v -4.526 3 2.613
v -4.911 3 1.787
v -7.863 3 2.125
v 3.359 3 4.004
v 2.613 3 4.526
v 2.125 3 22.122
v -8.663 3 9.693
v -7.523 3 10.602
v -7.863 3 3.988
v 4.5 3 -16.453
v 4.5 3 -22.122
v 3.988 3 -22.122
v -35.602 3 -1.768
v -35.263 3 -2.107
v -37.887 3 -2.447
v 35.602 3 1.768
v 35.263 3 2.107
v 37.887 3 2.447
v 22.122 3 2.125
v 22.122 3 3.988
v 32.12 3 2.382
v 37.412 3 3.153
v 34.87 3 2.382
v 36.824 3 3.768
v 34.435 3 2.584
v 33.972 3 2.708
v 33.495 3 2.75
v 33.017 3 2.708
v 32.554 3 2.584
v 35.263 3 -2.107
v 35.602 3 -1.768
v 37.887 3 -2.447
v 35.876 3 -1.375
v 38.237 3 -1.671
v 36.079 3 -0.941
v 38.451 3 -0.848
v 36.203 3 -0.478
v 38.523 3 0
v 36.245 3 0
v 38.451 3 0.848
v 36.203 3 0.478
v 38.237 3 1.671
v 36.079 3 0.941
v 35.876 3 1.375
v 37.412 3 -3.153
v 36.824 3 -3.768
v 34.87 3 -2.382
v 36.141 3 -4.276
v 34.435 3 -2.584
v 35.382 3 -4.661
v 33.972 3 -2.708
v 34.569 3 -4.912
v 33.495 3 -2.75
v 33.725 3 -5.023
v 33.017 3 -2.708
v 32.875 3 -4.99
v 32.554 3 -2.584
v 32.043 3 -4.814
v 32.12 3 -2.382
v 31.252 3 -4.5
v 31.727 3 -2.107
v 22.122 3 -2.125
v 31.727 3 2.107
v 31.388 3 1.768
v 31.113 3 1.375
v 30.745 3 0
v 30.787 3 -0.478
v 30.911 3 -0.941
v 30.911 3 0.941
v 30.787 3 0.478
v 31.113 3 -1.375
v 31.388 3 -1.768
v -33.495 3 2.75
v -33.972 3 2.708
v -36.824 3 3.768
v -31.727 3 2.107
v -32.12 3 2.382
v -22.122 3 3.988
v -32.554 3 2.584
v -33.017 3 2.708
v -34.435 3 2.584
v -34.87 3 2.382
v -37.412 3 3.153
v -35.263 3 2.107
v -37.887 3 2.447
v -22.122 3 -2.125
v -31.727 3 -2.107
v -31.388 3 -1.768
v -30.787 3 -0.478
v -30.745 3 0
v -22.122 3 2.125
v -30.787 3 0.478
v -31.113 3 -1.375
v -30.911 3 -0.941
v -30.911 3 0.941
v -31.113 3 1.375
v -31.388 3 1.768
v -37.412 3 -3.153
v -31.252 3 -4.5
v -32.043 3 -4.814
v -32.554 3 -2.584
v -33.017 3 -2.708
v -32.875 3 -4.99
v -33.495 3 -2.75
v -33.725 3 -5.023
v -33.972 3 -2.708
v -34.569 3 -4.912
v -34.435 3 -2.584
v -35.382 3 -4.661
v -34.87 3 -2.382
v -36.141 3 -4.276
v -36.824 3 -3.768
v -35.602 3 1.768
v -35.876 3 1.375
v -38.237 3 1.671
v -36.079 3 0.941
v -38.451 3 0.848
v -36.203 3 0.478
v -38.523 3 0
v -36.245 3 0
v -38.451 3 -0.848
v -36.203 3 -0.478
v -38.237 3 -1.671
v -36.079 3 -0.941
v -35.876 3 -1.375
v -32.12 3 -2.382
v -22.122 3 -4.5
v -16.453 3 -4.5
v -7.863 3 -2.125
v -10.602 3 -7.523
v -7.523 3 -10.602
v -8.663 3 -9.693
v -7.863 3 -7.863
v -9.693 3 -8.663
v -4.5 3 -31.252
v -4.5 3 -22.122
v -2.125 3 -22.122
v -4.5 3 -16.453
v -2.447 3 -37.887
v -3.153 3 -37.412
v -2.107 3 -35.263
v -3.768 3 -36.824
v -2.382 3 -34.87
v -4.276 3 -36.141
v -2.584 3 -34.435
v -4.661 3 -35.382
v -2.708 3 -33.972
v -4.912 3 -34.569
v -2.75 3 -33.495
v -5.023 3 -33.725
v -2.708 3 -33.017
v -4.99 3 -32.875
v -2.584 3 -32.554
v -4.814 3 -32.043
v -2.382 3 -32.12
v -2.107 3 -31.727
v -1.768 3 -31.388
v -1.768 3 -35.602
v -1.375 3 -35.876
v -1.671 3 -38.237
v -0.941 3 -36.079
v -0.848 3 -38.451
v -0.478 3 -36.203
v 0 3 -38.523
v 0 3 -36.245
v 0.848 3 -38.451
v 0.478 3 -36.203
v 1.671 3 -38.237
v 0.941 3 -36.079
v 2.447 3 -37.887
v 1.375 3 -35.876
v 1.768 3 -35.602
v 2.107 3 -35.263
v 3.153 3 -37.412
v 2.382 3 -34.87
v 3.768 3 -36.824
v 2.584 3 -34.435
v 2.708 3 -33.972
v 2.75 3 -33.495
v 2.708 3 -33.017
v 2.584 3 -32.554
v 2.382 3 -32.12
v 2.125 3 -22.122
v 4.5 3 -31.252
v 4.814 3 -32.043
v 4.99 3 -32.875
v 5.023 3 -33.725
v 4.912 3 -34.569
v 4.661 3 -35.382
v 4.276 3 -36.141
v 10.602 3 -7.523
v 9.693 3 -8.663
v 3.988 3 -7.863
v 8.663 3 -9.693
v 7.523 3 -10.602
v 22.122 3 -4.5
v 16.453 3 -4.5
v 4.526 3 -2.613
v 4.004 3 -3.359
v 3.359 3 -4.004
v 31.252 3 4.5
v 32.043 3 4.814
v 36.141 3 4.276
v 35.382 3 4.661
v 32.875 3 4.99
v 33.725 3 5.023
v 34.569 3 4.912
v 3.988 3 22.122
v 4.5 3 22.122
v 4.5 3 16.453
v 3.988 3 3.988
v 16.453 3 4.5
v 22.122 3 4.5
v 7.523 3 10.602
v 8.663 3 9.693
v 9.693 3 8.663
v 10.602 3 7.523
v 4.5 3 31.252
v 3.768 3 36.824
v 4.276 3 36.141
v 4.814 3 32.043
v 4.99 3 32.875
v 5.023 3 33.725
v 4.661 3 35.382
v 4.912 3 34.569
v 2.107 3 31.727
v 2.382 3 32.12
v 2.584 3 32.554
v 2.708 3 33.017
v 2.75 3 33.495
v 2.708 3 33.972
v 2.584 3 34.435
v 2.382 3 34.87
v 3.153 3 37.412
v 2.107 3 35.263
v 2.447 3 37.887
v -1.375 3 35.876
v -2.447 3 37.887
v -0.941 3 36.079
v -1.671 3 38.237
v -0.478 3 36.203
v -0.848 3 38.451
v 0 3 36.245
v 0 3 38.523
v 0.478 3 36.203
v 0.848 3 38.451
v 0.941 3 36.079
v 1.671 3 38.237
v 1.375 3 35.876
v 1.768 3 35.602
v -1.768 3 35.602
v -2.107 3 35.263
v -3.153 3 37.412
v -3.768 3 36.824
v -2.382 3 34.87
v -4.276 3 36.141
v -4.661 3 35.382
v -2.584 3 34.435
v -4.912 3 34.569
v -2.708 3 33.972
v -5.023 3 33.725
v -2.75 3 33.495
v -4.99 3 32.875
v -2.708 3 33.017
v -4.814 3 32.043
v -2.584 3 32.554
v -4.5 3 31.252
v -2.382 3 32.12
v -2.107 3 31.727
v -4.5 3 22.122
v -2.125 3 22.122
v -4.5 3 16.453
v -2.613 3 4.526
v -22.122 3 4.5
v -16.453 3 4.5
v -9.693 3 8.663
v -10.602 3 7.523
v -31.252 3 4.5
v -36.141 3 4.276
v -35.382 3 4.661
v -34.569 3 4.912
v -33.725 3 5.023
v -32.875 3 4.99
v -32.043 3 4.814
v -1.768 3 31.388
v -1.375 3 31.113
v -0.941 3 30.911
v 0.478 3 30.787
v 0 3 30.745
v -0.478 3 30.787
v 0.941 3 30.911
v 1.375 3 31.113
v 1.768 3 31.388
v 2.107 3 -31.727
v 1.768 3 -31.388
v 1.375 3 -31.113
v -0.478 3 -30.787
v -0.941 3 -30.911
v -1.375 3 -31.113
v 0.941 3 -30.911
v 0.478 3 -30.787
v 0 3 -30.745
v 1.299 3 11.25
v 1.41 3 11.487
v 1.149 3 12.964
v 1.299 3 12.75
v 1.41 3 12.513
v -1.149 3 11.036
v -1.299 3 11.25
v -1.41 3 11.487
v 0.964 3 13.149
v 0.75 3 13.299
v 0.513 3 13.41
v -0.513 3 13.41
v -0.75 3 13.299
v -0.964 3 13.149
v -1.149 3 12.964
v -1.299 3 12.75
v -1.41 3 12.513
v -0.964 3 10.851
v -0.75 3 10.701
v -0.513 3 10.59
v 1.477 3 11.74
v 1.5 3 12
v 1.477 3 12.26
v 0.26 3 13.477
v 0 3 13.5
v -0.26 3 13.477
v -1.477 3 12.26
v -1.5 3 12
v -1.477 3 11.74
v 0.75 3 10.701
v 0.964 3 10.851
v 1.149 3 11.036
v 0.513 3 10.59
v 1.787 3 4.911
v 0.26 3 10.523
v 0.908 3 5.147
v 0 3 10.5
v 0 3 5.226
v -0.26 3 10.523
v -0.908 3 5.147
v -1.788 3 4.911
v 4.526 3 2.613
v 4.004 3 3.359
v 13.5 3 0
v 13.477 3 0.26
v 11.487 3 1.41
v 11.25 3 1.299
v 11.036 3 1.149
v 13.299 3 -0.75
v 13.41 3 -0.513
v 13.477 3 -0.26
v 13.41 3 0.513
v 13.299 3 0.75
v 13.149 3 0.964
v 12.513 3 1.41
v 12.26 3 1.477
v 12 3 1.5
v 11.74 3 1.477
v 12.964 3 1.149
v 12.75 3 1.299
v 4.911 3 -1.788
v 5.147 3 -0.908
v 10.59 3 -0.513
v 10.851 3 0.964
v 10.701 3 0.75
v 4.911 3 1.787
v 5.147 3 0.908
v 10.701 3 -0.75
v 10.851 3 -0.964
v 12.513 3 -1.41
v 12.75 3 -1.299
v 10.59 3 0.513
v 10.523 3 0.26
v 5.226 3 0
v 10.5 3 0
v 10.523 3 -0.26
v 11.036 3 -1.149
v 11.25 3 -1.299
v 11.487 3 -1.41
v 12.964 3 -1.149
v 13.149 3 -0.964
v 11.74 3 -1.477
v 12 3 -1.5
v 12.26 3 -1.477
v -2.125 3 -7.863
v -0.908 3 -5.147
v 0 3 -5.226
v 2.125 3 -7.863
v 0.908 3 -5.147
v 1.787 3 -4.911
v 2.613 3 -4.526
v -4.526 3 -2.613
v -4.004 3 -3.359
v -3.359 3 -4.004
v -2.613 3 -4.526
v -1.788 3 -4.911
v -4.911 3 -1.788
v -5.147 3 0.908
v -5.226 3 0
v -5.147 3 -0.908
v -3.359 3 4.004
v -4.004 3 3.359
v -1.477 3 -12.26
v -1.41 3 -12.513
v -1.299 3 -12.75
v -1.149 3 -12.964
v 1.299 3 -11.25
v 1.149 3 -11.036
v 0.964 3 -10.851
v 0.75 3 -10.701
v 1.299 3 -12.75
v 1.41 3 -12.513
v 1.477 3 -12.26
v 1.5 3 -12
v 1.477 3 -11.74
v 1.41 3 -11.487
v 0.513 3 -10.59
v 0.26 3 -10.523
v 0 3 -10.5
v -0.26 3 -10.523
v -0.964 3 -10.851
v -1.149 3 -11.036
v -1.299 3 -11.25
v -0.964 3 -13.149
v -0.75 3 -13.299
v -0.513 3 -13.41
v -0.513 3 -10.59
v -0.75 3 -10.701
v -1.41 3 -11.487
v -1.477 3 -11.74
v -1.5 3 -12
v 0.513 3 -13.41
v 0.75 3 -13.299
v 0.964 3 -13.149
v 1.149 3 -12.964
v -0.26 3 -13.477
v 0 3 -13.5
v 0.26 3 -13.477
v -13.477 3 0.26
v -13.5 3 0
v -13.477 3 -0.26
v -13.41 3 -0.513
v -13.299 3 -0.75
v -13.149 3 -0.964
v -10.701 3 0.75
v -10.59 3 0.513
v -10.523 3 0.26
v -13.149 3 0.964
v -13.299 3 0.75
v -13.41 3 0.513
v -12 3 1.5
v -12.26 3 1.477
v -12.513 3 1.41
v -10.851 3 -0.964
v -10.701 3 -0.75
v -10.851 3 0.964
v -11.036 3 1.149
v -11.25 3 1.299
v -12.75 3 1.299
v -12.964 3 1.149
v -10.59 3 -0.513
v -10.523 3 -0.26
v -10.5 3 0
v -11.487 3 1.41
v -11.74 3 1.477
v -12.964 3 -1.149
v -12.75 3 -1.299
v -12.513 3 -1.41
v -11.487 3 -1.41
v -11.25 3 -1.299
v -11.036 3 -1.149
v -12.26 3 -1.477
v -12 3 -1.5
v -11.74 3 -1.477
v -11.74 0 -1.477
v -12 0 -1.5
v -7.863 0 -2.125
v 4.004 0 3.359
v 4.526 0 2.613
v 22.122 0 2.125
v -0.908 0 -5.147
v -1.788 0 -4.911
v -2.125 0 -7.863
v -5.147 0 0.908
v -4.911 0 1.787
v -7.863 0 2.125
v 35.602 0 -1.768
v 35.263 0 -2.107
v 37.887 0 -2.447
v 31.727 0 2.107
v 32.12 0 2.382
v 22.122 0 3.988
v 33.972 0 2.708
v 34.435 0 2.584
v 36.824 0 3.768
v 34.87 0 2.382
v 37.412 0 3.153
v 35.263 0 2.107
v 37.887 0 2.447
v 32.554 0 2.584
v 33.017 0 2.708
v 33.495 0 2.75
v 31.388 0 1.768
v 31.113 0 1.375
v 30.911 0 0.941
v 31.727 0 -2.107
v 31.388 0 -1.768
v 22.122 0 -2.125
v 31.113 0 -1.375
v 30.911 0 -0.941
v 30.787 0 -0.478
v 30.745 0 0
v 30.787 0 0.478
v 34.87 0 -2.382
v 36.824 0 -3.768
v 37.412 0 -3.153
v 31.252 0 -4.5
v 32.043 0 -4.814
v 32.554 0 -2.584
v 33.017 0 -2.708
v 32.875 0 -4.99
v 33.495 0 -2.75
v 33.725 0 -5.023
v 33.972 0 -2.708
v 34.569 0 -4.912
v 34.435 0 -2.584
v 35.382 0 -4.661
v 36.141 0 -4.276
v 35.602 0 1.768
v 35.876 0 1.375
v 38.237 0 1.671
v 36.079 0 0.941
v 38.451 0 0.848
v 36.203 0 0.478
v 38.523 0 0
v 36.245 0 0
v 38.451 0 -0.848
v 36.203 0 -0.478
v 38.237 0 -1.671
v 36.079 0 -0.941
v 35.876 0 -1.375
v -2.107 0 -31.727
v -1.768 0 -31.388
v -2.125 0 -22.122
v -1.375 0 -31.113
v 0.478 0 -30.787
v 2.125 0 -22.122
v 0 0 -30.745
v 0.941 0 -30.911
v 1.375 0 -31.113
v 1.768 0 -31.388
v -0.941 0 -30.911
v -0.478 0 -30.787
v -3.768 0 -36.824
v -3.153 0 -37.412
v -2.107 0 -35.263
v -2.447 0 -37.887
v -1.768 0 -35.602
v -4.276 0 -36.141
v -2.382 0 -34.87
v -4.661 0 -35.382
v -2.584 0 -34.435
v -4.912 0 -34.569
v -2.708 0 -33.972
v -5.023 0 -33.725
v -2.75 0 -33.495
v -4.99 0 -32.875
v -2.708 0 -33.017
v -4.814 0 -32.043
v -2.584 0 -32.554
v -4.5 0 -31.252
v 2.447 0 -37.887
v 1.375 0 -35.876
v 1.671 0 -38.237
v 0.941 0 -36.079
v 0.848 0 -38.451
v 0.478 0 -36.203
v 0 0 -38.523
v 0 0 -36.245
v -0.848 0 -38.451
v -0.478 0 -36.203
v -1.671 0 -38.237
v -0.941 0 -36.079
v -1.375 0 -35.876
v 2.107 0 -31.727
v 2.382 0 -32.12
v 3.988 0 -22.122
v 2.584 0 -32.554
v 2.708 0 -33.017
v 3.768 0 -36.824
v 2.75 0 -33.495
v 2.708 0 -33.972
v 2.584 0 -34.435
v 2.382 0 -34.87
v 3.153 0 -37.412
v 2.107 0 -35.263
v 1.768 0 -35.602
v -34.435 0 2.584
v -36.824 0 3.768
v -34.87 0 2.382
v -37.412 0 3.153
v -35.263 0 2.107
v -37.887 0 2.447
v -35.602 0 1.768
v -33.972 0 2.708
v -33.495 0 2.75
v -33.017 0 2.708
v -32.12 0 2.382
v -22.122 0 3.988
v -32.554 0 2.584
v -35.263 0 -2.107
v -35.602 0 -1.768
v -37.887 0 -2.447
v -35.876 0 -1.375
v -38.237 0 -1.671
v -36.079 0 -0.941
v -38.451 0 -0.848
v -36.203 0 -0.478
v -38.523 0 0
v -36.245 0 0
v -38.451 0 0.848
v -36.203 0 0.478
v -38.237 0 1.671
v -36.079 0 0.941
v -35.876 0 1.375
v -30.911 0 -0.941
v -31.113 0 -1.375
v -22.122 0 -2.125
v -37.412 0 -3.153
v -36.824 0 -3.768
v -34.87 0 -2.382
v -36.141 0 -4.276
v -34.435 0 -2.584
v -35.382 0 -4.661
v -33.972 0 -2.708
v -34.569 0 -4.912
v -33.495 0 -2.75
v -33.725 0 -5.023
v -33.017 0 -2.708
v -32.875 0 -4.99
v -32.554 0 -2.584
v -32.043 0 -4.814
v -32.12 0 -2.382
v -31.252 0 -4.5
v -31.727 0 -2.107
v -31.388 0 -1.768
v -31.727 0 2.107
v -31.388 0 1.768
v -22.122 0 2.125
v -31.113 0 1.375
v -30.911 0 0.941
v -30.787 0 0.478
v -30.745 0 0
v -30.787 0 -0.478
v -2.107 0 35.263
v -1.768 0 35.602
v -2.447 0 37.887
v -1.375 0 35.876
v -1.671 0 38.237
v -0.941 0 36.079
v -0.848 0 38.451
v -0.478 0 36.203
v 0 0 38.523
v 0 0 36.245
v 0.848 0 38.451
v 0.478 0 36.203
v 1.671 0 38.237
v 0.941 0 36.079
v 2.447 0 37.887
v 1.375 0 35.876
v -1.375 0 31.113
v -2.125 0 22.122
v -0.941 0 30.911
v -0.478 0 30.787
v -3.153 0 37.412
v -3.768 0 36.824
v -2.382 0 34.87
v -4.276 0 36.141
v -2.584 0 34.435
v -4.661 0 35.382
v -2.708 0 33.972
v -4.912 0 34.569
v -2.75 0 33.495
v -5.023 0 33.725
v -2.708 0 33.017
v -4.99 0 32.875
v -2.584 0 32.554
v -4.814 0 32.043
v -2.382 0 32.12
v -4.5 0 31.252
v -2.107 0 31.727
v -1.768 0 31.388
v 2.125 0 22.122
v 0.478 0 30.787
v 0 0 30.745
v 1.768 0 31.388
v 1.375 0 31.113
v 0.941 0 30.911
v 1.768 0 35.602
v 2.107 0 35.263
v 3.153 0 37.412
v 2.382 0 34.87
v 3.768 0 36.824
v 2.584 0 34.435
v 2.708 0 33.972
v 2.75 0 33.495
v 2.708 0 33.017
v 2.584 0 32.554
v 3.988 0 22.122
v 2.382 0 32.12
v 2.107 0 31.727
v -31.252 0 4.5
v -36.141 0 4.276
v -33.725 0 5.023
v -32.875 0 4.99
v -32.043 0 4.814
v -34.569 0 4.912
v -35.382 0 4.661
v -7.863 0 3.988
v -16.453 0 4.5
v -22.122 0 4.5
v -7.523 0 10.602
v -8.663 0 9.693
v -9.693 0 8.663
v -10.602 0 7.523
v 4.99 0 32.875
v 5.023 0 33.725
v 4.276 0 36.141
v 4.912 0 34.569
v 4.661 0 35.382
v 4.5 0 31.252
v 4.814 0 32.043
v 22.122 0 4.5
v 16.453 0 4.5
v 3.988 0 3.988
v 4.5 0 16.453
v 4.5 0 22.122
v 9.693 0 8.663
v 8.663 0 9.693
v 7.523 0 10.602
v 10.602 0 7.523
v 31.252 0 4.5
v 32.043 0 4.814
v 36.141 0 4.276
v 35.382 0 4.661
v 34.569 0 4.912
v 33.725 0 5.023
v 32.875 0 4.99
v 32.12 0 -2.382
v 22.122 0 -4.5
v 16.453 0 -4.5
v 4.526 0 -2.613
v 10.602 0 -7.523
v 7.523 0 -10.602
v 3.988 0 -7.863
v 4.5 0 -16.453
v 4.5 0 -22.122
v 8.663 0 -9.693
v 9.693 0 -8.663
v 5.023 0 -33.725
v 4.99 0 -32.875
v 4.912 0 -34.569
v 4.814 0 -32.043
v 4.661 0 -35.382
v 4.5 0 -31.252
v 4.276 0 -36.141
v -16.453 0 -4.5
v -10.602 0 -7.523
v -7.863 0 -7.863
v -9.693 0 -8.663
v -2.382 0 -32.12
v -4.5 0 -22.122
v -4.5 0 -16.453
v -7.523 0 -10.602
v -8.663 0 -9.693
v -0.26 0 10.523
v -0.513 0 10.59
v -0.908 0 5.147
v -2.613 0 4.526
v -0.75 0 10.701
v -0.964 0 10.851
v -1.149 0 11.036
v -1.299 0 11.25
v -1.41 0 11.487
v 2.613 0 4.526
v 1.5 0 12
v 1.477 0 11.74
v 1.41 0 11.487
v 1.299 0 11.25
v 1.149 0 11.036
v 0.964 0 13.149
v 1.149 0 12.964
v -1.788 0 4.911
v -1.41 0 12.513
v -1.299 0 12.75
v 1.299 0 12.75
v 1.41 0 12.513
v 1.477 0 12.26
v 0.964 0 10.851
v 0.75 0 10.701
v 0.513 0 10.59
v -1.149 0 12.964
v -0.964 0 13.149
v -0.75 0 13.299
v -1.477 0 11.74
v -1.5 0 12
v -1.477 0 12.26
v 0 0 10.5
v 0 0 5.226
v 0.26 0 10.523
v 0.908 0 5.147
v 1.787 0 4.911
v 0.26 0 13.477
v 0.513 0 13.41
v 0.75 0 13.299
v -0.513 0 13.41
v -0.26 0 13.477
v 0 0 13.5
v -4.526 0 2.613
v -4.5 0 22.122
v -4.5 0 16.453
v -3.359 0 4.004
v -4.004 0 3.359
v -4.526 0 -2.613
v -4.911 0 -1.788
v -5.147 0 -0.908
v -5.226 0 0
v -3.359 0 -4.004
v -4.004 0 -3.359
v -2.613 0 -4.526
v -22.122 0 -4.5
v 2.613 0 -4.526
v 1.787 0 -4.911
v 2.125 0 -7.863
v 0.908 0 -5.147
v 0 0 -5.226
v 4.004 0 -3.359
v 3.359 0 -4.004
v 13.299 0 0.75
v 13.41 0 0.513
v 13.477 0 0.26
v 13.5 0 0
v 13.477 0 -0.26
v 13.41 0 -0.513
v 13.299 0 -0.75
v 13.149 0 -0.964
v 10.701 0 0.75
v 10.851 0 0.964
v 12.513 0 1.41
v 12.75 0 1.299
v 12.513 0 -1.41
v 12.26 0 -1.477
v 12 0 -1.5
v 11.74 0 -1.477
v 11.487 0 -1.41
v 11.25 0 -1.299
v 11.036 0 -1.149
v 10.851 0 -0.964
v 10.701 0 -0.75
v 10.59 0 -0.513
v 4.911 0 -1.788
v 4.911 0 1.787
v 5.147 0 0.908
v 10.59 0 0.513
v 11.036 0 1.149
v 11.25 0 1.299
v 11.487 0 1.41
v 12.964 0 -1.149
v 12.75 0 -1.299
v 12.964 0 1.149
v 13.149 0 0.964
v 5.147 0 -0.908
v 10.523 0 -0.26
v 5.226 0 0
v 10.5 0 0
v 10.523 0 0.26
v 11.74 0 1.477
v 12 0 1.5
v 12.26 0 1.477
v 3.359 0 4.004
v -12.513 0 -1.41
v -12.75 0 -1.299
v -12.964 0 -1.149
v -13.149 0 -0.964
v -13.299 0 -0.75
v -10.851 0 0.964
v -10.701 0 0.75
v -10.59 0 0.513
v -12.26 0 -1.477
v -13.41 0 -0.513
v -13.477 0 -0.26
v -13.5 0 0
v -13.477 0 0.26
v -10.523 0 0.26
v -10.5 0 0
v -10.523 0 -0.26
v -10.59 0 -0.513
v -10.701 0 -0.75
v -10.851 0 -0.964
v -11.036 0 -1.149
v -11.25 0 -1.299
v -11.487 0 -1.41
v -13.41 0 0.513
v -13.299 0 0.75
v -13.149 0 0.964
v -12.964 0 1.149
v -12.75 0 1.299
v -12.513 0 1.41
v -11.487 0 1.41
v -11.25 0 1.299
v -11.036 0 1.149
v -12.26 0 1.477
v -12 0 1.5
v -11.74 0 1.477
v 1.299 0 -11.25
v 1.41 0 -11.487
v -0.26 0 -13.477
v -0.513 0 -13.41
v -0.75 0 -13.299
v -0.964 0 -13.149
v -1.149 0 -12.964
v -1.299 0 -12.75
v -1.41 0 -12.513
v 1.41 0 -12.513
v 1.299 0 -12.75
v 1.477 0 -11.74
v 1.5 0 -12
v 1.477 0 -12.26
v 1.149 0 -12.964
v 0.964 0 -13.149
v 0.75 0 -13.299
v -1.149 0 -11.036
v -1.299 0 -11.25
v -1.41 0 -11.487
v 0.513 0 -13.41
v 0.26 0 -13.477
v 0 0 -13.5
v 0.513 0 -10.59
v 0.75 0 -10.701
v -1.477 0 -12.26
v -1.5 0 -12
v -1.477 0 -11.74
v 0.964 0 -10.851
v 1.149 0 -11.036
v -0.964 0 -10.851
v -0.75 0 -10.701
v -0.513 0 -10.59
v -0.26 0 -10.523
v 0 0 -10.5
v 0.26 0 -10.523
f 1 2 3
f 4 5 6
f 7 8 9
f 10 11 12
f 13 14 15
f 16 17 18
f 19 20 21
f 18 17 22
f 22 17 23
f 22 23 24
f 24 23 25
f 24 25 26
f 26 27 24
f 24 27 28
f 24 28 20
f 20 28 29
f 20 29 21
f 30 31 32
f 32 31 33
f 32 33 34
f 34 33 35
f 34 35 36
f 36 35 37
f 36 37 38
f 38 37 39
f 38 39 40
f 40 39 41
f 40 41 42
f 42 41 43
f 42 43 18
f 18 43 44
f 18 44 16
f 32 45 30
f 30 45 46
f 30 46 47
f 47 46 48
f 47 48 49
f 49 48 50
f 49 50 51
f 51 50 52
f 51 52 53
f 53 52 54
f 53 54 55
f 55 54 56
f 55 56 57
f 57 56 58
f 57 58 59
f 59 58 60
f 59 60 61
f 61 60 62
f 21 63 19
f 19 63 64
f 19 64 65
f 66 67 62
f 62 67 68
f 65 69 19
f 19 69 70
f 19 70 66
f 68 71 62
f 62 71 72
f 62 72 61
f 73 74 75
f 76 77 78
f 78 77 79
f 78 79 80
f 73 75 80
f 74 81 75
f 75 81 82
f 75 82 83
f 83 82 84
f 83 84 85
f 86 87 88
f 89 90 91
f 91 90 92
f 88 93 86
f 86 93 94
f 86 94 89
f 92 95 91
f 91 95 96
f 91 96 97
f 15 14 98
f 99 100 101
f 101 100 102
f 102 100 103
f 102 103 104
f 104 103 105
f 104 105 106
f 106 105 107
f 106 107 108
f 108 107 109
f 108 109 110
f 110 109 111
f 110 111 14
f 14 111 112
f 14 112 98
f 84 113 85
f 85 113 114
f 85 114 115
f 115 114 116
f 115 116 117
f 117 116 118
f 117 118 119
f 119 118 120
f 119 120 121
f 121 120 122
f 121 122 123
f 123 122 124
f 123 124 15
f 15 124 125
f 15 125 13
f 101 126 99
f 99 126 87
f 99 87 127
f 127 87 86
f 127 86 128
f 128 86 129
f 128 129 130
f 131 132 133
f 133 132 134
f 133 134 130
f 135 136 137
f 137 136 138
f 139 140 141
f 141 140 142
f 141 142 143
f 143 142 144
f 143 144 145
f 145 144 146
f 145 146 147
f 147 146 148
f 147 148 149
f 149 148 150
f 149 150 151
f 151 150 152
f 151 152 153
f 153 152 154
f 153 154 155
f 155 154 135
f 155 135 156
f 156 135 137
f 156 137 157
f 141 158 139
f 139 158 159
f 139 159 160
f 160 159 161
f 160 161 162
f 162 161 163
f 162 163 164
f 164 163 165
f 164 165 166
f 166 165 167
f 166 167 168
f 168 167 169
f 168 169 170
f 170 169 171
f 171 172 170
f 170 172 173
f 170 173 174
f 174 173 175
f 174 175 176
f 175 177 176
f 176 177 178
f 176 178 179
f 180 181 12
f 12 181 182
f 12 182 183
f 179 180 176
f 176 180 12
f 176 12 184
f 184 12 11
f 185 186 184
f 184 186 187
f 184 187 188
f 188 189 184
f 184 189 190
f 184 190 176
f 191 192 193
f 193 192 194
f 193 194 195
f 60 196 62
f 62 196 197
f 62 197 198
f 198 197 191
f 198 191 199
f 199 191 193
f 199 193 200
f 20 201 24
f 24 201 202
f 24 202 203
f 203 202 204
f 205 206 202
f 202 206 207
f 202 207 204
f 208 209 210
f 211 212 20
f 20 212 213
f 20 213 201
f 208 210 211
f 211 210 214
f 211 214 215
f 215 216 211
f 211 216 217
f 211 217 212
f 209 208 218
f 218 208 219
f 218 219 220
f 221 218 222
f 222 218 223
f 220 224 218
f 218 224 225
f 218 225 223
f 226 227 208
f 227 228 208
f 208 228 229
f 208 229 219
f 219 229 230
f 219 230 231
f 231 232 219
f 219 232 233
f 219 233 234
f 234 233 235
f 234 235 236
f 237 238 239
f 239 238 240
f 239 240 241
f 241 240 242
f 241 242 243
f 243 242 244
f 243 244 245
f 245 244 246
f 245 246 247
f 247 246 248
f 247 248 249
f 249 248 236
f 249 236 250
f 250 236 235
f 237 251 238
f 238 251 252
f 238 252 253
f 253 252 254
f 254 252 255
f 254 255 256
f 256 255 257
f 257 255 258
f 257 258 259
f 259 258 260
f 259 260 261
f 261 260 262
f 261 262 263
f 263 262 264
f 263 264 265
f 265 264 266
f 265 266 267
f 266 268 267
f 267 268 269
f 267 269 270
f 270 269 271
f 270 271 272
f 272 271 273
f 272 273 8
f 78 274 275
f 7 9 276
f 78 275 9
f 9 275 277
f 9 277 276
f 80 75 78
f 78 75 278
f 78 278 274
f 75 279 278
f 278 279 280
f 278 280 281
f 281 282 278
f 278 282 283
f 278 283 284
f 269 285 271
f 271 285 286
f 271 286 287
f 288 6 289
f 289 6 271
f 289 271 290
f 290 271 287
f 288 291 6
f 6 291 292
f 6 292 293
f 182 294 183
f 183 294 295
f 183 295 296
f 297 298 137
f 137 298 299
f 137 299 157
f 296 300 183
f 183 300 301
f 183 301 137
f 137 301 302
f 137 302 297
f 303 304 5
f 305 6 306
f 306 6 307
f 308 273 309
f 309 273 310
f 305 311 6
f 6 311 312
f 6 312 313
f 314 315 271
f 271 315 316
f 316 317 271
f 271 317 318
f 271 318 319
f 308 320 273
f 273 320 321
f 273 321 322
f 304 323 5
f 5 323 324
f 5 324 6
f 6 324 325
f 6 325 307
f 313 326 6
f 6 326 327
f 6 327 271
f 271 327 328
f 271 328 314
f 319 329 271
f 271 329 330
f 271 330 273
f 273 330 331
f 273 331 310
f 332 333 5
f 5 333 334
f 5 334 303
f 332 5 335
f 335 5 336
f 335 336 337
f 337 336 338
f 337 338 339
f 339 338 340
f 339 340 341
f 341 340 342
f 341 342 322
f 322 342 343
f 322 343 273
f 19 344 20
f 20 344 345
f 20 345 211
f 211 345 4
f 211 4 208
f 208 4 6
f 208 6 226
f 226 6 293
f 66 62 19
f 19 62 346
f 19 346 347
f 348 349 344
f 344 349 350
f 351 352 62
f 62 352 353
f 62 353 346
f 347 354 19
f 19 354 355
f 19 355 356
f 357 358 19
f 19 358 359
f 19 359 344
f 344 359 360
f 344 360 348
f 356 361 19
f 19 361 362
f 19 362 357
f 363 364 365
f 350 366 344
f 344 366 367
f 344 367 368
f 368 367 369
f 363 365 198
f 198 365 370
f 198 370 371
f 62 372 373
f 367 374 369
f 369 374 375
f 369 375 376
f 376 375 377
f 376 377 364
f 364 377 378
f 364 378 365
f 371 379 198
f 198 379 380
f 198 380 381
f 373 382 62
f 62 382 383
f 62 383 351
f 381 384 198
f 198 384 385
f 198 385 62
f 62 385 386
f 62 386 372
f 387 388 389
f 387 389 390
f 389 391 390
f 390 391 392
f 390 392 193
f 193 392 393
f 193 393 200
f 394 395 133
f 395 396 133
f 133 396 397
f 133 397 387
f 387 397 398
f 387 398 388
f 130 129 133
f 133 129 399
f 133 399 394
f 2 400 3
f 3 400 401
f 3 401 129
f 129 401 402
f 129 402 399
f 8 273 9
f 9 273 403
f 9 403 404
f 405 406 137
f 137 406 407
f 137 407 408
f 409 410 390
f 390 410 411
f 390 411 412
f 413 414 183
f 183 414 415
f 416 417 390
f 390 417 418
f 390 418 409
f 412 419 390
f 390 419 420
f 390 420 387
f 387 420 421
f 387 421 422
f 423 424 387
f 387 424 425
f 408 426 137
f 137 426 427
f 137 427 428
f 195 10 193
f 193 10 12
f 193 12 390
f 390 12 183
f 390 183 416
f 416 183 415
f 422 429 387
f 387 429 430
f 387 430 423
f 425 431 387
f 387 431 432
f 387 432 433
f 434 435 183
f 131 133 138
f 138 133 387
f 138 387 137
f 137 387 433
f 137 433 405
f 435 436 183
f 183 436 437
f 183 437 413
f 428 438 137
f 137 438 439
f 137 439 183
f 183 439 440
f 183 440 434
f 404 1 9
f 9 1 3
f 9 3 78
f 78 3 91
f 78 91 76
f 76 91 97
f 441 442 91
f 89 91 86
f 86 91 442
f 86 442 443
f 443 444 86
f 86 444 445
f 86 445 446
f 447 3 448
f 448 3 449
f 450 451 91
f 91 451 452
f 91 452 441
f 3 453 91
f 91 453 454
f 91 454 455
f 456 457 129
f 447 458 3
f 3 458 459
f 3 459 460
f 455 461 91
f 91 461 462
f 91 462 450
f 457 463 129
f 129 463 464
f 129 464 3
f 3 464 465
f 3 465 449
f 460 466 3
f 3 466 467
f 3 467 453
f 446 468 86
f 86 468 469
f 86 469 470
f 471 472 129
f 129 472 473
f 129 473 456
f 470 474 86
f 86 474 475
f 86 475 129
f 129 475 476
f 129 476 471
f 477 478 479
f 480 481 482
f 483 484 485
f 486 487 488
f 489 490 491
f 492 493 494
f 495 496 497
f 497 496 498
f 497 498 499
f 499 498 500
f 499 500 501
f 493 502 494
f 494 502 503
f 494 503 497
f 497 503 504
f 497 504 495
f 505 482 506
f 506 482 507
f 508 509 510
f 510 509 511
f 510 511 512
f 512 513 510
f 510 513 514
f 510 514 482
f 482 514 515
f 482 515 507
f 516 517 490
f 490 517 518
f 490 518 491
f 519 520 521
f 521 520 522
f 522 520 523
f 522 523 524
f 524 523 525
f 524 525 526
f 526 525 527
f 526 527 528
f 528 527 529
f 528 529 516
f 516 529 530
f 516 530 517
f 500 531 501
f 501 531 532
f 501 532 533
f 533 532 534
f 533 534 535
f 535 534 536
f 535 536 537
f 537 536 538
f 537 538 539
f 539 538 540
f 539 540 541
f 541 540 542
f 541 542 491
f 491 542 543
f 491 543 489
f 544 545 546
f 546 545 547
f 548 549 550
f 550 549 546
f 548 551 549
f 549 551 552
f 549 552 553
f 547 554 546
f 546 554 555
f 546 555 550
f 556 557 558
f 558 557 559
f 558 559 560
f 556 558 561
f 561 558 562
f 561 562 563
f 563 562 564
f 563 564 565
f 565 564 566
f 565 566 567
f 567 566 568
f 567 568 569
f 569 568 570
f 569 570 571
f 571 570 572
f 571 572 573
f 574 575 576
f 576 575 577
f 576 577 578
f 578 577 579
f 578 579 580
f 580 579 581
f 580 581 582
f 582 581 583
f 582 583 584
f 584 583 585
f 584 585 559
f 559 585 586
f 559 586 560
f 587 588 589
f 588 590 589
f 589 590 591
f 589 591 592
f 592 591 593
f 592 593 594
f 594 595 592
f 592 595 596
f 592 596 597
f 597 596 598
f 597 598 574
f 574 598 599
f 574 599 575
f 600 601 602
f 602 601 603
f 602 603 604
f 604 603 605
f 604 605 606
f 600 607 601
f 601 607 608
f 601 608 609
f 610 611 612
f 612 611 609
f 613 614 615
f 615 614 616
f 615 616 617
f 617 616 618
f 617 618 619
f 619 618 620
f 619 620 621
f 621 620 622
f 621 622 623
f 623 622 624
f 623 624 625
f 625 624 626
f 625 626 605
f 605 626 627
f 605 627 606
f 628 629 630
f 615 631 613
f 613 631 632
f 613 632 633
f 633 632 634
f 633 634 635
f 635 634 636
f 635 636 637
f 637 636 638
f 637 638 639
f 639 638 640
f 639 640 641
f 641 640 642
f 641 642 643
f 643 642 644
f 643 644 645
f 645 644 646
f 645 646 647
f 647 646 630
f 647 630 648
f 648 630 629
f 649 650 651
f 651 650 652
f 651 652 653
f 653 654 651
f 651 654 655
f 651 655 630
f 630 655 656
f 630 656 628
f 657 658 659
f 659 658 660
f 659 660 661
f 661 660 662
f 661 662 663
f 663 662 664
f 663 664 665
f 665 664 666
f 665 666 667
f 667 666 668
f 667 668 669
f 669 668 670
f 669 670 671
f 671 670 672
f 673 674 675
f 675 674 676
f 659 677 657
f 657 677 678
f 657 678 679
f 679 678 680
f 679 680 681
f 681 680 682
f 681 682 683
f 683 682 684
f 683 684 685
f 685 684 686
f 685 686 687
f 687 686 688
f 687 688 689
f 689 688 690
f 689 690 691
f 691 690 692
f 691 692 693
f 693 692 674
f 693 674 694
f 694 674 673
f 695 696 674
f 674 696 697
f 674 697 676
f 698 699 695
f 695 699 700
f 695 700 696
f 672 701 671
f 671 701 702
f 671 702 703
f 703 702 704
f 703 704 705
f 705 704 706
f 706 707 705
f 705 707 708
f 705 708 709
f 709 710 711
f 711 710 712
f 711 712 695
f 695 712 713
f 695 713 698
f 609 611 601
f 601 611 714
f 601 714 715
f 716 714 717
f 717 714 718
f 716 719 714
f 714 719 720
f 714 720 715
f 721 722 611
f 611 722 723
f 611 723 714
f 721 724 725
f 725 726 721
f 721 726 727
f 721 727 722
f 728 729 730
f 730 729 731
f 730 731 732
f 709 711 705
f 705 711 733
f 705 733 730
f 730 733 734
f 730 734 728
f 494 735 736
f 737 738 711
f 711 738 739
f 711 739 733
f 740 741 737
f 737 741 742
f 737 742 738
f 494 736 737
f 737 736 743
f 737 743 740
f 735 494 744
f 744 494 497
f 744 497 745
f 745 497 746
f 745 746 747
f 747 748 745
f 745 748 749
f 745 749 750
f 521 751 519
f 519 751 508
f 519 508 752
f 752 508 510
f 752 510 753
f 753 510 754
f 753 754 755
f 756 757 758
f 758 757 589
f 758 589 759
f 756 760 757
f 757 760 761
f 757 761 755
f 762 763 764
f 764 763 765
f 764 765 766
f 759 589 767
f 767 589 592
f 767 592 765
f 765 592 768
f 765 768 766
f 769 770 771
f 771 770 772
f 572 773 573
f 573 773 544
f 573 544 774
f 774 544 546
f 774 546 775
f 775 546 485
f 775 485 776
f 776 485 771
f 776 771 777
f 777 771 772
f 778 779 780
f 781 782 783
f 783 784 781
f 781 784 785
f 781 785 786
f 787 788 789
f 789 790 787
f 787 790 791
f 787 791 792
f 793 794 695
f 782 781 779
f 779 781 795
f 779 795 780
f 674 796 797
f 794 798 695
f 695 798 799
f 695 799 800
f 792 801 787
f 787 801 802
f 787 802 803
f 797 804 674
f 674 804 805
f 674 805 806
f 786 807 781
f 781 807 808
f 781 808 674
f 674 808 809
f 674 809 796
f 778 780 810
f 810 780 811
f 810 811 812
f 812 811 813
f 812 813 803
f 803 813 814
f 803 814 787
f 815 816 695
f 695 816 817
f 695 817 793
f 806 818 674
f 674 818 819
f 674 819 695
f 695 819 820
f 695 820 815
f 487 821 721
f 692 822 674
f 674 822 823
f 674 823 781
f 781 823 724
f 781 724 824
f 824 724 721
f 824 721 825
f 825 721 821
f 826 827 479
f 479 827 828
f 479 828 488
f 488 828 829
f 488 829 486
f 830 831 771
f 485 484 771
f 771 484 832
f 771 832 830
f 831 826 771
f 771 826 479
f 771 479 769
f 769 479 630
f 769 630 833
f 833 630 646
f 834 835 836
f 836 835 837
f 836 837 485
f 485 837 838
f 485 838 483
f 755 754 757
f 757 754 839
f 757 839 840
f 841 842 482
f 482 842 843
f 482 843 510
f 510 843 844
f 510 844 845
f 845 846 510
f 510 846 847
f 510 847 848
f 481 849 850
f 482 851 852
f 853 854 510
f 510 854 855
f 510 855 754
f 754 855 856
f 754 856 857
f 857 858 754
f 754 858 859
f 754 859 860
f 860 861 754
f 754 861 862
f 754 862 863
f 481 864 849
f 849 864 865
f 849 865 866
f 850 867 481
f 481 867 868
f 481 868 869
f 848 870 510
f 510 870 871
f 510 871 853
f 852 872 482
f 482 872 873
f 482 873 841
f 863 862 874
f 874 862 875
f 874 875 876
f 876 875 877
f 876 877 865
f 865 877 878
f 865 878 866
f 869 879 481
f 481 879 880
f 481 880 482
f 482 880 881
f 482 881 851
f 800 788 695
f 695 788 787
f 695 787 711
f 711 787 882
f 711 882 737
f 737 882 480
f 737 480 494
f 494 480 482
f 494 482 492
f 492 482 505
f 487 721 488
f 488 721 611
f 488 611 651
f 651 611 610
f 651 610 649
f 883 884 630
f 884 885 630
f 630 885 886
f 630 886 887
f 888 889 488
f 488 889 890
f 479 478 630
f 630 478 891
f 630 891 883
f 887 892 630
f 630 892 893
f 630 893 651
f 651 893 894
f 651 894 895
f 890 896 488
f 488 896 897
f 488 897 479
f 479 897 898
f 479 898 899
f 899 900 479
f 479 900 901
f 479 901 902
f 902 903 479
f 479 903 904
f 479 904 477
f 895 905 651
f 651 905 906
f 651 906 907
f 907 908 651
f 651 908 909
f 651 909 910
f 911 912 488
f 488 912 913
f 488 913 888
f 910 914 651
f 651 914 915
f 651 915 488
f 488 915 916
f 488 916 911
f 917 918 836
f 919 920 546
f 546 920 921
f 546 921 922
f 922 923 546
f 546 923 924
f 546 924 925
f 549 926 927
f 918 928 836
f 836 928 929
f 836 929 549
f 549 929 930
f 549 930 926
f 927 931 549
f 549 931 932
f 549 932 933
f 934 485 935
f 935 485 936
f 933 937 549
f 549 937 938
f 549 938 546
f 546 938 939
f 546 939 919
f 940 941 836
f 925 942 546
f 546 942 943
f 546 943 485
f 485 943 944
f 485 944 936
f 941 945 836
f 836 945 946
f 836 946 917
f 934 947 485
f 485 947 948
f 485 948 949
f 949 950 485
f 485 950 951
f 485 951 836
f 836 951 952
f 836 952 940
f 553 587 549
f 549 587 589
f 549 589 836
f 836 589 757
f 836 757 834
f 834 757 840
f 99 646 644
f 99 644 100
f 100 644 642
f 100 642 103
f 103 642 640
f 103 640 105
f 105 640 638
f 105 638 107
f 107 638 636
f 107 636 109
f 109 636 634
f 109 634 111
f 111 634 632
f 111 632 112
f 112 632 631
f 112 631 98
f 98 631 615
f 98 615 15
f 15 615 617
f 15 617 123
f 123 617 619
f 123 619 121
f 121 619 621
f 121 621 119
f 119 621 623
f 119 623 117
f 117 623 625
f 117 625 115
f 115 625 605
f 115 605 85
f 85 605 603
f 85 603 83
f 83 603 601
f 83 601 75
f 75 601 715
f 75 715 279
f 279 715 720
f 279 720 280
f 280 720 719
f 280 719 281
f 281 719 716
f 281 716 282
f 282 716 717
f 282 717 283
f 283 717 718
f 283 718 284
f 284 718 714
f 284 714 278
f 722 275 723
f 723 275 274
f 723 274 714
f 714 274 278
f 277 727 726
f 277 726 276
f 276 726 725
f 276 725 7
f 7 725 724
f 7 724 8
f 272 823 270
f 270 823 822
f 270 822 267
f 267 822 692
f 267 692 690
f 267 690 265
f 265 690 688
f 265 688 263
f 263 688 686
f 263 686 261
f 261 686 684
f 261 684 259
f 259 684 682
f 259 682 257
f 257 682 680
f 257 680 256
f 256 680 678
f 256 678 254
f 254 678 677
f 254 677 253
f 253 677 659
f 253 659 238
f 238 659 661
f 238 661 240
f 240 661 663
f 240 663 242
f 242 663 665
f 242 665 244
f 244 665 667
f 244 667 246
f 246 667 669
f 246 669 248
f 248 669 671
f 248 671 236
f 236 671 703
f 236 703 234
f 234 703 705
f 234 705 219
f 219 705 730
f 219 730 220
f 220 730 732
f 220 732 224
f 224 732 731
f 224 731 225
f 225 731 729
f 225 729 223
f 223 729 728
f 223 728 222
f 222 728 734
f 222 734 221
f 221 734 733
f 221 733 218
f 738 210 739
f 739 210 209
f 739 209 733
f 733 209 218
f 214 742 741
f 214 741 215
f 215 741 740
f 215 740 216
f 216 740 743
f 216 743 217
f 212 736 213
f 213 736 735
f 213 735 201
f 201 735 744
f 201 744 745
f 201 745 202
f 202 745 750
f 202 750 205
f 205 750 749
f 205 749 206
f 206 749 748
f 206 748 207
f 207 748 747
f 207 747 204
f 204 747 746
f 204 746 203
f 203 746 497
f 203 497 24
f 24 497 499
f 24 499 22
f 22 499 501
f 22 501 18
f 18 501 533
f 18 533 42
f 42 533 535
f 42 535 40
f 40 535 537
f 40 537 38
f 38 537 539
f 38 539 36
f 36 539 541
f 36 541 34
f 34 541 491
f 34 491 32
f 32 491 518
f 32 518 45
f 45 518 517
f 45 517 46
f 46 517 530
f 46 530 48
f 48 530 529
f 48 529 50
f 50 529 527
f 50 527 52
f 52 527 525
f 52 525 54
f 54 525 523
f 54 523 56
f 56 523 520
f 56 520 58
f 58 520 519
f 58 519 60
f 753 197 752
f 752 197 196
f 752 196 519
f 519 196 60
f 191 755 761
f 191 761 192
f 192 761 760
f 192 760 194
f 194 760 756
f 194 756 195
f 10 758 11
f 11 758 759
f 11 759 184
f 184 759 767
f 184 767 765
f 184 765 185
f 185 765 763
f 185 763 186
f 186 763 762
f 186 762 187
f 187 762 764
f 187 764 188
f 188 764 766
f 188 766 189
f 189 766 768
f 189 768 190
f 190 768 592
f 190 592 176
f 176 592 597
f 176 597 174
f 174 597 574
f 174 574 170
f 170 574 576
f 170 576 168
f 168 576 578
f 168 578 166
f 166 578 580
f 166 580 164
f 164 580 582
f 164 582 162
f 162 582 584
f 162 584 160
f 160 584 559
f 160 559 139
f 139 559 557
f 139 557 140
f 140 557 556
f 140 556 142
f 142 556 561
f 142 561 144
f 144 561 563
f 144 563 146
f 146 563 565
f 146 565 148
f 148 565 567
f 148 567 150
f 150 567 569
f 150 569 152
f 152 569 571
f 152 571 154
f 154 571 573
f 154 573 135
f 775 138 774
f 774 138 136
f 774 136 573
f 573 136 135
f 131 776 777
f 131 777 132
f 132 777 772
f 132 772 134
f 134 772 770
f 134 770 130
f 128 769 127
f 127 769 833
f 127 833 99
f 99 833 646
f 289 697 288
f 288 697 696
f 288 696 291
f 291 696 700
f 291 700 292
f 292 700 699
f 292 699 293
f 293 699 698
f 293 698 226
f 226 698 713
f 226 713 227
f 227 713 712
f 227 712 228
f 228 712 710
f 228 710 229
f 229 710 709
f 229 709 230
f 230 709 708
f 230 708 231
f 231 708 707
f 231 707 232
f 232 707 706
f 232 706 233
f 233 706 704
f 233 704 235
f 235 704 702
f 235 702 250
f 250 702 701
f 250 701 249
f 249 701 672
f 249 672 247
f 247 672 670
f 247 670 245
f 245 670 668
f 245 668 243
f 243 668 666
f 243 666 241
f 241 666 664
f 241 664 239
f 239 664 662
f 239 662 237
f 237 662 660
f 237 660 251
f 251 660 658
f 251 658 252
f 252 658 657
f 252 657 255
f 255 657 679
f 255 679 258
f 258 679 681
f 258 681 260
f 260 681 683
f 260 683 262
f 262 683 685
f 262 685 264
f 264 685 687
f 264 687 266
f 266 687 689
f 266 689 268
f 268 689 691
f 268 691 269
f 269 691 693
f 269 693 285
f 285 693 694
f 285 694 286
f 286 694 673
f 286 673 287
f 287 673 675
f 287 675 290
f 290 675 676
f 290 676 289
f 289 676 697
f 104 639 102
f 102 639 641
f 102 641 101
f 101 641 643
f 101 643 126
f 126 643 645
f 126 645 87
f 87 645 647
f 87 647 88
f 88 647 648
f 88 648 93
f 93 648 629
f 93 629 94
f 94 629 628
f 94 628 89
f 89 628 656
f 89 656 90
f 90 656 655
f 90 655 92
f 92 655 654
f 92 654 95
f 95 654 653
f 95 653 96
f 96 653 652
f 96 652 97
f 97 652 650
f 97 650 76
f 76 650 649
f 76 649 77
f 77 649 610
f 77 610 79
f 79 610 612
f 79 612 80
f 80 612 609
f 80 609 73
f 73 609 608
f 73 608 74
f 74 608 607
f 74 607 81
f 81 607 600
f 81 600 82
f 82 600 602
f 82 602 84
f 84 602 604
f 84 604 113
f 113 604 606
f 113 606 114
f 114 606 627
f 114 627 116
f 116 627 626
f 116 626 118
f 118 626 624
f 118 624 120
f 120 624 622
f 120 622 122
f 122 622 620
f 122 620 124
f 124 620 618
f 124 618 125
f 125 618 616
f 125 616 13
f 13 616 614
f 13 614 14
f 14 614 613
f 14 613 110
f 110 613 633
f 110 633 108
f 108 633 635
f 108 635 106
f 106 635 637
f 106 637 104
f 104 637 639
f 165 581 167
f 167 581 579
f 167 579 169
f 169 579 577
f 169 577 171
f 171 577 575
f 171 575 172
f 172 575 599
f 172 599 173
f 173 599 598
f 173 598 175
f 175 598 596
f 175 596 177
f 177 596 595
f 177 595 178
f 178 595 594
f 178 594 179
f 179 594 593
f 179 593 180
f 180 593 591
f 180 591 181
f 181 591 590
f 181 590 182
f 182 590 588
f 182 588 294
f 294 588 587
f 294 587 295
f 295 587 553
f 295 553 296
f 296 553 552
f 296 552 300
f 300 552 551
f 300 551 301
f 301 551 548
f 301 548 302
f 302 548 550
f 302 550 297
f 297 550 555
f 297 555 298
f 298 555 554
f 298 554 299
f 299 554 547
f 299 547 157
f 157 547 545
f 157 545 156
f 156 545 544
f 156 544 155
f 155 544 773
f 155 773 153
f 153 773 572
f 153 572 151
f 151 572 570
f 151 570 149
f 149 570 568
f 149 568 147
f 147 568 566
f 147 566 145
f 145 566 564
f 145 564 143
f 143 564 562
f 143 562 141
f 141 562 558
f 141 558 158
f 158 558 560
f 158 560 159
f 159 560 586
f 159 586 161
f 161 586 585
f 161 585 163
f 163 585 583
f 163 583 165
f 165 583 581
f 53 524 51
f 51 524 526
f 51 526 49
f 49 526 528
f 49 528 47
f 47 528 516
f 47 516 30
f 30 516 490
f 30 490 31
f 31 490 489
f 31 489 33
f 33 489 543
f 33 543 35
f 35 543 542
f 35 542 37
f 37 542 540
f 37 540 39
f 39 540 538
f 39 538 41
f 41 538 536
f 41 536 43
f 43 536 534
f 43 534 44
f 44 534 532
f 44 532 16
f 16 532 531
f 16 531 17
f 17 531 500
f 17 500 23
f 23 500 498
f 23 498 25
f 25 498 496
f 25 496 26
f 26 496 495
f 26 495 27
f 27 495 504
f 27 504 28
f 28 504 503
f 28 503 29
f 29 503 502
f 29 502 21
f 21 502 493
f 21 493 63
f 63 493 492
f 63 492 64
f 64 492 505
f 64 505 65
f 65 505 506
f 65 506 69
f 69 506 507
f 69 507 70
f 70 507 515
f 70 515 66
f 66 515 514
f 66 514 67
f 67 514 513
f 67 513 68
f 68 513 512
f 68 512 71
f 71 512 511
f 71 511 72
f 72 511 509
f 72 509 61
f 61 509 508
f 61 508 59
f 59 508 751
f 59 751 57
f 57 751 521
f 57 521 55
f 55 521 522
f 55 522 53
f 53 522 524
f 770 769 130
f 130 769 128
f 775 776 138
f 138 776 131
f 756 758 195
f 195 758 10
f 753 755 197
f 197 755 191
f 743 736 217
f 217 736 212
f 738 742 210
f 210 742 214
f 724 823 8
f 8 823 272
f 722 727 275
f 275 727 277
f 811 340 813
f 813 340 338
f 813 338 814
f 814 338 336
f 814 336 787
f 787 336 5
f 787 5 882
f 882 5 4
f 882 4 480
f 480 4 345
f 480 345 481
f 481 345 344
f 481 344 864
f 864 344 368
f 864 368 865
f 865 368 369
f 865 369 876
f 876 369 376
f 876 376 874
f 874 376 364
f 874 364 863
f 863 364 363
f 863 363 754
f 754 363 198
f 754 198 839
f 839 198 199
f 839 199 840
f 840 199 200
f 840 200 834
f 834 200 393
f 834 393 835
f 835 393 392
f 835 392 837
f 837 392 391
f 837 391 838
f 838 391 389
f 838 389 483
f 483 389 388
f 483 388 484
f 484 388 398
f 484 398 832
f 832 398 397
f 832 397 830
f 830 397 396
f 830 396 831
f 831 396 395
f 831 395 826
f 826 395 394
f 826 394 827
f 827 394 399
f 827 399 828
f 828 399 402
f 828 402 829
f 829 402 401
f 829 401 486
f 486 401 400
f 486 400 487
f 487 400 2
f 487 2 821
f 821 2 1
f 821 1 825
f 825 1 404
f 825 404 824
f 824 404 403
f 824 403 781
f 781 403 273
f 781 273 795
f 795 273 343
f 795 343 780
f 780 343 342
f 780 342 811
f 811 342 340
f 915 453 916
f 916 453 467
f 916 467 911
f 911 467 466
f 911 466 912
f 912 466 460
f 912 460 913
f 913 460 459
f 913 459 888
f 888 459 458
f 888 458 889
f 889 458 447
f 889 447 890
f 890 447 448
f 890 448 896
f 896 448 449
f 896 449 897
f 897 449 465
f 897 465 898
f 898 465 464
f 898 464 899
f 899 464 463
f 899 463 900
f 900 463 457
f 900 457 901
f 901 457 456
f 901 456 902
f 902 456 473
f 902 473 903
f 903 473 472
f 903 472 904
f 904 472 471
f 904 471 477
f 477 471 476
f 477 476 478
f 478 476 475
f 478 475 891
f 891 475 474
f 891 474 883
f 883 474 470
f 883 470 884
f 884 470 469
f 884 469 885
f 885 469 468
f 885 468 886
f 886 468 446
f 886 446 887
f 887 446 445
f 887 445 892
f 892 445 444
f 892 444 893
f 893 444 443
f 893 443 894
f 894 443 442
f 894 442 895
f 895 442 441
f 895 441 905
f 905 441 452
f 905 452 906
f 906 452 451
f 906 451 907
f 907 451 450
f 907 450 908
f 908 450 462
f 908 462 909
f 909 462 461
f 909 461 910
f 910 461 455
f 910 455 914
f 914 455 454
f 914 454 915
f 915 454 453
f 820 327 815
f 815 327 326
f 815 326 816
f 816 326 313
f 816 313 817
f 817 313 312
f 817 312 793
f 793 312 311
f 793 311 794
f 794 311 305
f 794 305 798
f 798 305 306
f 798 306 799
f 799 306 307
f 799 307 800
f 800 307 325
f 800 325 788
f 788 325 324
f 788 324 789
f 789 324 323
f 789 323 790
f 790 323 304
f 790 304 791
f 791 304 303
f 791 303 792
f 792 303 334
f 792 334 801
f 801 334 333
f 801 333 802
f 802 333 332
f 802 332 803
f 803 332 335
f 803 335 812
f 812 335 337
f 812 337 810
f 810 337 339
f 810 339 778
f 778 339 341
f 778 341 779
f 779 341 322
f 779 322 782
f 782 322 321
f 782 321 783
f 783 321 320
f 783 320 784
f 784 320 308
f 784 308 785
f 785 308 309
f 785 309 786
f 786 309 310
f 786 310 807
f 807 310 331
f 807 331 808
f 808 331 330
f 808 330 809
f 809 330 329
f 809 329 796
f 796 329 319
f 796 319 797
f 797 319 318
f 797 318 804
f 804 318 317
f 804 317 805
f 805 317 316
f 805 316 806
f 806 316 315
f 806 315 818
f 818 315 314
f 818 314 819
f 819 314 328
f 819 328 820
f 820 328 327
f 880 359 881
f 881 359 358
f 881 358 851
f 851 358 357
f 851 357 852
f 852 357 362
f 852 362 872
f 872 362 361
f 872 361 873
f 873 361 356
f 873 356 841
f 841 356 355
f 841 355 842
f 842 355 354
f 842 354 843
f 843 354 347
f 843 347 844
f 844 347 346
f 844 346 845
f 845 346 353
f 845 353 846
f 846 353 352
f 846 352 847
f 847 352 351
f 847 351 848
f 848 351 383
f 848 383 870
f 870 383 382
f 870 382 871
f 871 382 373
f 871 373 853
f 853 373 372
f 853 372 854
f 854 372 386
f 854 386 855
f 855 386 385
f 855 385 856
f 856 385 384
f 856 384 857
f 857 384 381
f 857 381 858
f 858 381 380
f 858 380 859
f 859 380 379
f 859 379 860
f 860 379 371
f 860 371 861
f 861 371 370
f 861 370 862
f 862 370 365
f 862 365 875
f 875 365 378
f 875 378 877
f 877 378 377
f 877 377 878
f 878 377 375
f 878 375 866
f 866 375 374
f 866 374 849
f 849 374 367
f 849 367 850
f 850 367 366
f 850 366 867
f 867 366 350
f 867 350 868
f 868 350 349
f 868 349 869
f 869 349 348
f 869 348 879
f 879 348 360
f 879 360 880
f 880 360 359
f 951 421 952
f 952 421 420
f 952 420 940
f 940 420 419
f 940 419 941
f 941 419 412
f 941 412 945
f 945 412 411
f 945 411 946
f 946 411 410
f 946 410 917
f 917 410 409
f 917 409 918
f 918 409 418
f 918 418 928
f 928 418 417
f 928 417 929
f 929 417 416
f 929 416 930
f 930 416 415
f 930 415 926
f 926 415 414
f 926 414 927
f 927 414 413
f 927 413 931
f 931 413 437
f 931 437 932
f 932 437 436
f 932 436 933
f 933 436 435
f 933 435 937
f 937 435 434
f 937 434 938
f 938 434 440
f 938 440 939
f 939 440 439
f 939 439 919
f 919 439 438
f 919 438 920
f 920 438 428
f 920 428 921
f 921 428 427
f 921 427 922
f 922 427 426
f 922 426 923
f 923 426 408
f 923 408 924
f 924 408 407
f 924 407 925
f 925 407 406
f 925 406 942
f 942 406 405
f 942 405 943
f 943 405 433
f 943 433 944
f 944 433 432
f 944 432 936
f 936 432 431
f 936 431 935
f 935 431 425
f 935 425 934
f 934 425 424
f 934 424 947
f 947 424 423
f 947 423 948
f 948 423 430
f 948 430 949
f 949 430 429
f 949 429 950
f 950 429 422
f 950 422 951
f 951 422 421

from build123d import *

# Parameters (mm, degrees)
SKETCH1_R           = 2.75
BOSS_EXTRUDE1_DEPTH = 3
SKETCH5_R           = 5.226301297
SKETCH5_R_2         = 1.5
CUT_EXTRUDE2_DEPTH  = 7.2


with BuildPart() as part:
    # Sketch1 → Boss-Extrude1 (new body)
    with BuildSketch(Plane(origin=(0, 0, 0), x_dir=(1, 0, 0), z_dir=(0, 1, 0))):
        with BuildLine():
            Line((-4.5, 31.251652173), (-4.5, 12.196310918))
            ThreePointArc((-4.5, 12.196310918), (-9.192388155, 9.192388155), (-12.196310918, 4.5))
            Line((-12.196310918, 4.5), (-31.251652173, 4.5))
            ThreePointArc((-31.251652173, 4.5), (-38.523072163, 0), (-31.251652173, -4.5))
            Line((-31.251652173, -4.5), (-12.196310918, -4.5))
            ThreePointArc((-12.196310918, -4.5), (-9.192388155, -9.192388155), (-4.5, -12.196310918))
            Line((-4.5, -12.196310918), (-4.5, -31.251652173))
            ThreePointArc((-4.5, -31.251652173), (0, -38.523072163), (4.5, -31.251652173))
            Line((4.5, -31.251652173), (4.5, -12.196310918))
            ThreePointArc((4.5, -12.196310918), (9.192388155, -9.192388155), (12.196310918, -4.5))
            Line((12.196310918, -4.5), (31.251652173, -4.5))
            ThreePointArc((31.251652173, -4.5), (38.523072163, 0), (31.251652173, 4.5))
            Line((31.251652173, 4.5), (12.196310918, 4.5))
            ThreePointArc((12.196310918, 4.5), (9.192388155, 9.192388155), (4.5, 12.196310918))
            Line((4.5, 12.196310918), (4.5, 31.251652173))
            ThreePointArc((4.5, 31.251652173), (0, 38.523072163), (-4.5, 31.251652173))
        make_face()
        with Locations(Location((0, -33.494924376, 0), (0, 0, 270))):
            Circle(SKETCH1_R, mode=Mode.SUBTRACT)
        with Locations(Location((-33.494924376, 0, 0), (0, 0, 270))):
            Circle(SKETCH1_R, mode=Mode.SUBTRACT)
        with Locations(Location((0, 33.494924376, 0), (0, 0, 270))):
            Circle(SKETCH1_R, mode=Mode.SUBTRACT)
        with Locations(Location((33.494924376, 0, 0), (0, 0, 270))):
            Circle(SKETCH1_R, mode=Mode.SUBTRACT)
    extrude(amount=BOSS_EXTRUDE1_DEPTH)

    # Chamfer1
    # the kernel refuses this chamfer: 5 mm, written as the material it adds along each edge
    with BuildSketch(Plane(origin=(-12.196310918, 0, -4.5), x_dir=(0.4944512114841002, 0, -0.869205383935181), z_dir=(0, 1, 0)), Plane(origin=(4.5, 0, -12.196310918), x_dir=(0.8692053839351812, 0, 0.4944512114841002), z_dir=(0, 1, 0)), Plane(origin=(12.196310918, 0, 4.5), x_dir=(-0.4944512114841005, 0, 0.869205383935181), z_dir=(0, 1, 0)), Plane(origin=(-4.5, 0, 12.196310918), x_dir=(-0.869205383935182, 0, -0.4944512114840988), z_dir=(0, 1, 0))) as chamfer1_piece_1:
        with BuildLine():
            Line((3.583193205, 0), (-2.272552352, 3.809310984))
            Line((-2.272552352, 3.809310984), (-2.359472891, 3.759865863))
            ThreePointArc((-2.359472891, 3.759865863), (-1.183301792, 1.877904769), (-0.086920538, -0.049445121))
            Line((-0.086920538, -0.049445121), (0.016300434, -0.098662535))
            ThreePointArc((0.016300434, -0.098662535), (1.789817923, 0.069668276), (3.573220218, -0.099501455))
            Line((3.573220218, -0.099501455), (3.583193205, 0))
        make_face()
    extrude(amount=3)
    with BuildSketch(Plane(origin=(-4.5, 0, -12.196310918), x_dir=(0.020694934032123476, 0, -0.9997858369197905), z_dir=(0, 1, 0)), Plane(origin=(12.196310918, 0, -4.5), x_dir=(0.9997858369197905, 0, 0.020694934032131303), z_dir=(0, 1, 0)), Plane(origin=(4.5, 0, 12.196310918), x_dir=(-0.020694934032078793, 0, 0.9997858369197915), z_dir=(0, 1, 0)), Plane(origin=(-12.196310918, 0, 4.5), x_dir=(-0.9997858369197906, 0, -0.020694934032118258), z_dir=(0, 1, 0))) as chamfer1_piece_2:
        with BuildLine():
            Line((4.435689841, 0), (-1.835789795, 3.077198299))
            Line((-1.835789795, 3.077198299), (-1.916130816, 3.017655706))
            ThreePointArc((-1.916130816, 3.017655706), (-0.857153439, 1.572765033), (-0.093081321, -0.036549524))
            Line((-0.093081321, -0.036549524), (0.002069493, -0.099978584))
            ThreePointArc((0.002069493, -0.099978584), (2.218964555, -0.054090259), (4.437759335, -0.099978584))
            Line((4.437759335, -0.099978584), (4.435689841, 0))
        make_face()
    extrude(amount=3)

    # Sketch5 → Cut-Extrude2 (cut)
    with BuildSketch(Plane(origin=(0, 3, 0), x_dir=(1, 0, 0), z_dir=(0, 1, 0))):
        with Locations(Location((0, 0, 0), (0, 0, 270))):
            Circle(SKETCH5_R)
        with Locations(Location((-1.03e-07, 12, 0), (0, 0, 270))):
            Circle(SKETCH5_R_2)
        with Locations(Location((12, 1.03e-07, 0), (0, 0, 270))):
            Circle(SKETCH5_R_2)
        with Locations(Location((1.03e-07, -12, 0), (0, 0, 270))):
            Circle(SKETCH5_R_2)
        with Locations(Location((-12, -1.03e-07, 0), (0, 0, 270))):
            Circle(SKETCH5_R_2)
    extrude(amount=-CUT_EXTRUDE2_DEPTH, mode=Mode.SUBTRACT)


solid = part.part
